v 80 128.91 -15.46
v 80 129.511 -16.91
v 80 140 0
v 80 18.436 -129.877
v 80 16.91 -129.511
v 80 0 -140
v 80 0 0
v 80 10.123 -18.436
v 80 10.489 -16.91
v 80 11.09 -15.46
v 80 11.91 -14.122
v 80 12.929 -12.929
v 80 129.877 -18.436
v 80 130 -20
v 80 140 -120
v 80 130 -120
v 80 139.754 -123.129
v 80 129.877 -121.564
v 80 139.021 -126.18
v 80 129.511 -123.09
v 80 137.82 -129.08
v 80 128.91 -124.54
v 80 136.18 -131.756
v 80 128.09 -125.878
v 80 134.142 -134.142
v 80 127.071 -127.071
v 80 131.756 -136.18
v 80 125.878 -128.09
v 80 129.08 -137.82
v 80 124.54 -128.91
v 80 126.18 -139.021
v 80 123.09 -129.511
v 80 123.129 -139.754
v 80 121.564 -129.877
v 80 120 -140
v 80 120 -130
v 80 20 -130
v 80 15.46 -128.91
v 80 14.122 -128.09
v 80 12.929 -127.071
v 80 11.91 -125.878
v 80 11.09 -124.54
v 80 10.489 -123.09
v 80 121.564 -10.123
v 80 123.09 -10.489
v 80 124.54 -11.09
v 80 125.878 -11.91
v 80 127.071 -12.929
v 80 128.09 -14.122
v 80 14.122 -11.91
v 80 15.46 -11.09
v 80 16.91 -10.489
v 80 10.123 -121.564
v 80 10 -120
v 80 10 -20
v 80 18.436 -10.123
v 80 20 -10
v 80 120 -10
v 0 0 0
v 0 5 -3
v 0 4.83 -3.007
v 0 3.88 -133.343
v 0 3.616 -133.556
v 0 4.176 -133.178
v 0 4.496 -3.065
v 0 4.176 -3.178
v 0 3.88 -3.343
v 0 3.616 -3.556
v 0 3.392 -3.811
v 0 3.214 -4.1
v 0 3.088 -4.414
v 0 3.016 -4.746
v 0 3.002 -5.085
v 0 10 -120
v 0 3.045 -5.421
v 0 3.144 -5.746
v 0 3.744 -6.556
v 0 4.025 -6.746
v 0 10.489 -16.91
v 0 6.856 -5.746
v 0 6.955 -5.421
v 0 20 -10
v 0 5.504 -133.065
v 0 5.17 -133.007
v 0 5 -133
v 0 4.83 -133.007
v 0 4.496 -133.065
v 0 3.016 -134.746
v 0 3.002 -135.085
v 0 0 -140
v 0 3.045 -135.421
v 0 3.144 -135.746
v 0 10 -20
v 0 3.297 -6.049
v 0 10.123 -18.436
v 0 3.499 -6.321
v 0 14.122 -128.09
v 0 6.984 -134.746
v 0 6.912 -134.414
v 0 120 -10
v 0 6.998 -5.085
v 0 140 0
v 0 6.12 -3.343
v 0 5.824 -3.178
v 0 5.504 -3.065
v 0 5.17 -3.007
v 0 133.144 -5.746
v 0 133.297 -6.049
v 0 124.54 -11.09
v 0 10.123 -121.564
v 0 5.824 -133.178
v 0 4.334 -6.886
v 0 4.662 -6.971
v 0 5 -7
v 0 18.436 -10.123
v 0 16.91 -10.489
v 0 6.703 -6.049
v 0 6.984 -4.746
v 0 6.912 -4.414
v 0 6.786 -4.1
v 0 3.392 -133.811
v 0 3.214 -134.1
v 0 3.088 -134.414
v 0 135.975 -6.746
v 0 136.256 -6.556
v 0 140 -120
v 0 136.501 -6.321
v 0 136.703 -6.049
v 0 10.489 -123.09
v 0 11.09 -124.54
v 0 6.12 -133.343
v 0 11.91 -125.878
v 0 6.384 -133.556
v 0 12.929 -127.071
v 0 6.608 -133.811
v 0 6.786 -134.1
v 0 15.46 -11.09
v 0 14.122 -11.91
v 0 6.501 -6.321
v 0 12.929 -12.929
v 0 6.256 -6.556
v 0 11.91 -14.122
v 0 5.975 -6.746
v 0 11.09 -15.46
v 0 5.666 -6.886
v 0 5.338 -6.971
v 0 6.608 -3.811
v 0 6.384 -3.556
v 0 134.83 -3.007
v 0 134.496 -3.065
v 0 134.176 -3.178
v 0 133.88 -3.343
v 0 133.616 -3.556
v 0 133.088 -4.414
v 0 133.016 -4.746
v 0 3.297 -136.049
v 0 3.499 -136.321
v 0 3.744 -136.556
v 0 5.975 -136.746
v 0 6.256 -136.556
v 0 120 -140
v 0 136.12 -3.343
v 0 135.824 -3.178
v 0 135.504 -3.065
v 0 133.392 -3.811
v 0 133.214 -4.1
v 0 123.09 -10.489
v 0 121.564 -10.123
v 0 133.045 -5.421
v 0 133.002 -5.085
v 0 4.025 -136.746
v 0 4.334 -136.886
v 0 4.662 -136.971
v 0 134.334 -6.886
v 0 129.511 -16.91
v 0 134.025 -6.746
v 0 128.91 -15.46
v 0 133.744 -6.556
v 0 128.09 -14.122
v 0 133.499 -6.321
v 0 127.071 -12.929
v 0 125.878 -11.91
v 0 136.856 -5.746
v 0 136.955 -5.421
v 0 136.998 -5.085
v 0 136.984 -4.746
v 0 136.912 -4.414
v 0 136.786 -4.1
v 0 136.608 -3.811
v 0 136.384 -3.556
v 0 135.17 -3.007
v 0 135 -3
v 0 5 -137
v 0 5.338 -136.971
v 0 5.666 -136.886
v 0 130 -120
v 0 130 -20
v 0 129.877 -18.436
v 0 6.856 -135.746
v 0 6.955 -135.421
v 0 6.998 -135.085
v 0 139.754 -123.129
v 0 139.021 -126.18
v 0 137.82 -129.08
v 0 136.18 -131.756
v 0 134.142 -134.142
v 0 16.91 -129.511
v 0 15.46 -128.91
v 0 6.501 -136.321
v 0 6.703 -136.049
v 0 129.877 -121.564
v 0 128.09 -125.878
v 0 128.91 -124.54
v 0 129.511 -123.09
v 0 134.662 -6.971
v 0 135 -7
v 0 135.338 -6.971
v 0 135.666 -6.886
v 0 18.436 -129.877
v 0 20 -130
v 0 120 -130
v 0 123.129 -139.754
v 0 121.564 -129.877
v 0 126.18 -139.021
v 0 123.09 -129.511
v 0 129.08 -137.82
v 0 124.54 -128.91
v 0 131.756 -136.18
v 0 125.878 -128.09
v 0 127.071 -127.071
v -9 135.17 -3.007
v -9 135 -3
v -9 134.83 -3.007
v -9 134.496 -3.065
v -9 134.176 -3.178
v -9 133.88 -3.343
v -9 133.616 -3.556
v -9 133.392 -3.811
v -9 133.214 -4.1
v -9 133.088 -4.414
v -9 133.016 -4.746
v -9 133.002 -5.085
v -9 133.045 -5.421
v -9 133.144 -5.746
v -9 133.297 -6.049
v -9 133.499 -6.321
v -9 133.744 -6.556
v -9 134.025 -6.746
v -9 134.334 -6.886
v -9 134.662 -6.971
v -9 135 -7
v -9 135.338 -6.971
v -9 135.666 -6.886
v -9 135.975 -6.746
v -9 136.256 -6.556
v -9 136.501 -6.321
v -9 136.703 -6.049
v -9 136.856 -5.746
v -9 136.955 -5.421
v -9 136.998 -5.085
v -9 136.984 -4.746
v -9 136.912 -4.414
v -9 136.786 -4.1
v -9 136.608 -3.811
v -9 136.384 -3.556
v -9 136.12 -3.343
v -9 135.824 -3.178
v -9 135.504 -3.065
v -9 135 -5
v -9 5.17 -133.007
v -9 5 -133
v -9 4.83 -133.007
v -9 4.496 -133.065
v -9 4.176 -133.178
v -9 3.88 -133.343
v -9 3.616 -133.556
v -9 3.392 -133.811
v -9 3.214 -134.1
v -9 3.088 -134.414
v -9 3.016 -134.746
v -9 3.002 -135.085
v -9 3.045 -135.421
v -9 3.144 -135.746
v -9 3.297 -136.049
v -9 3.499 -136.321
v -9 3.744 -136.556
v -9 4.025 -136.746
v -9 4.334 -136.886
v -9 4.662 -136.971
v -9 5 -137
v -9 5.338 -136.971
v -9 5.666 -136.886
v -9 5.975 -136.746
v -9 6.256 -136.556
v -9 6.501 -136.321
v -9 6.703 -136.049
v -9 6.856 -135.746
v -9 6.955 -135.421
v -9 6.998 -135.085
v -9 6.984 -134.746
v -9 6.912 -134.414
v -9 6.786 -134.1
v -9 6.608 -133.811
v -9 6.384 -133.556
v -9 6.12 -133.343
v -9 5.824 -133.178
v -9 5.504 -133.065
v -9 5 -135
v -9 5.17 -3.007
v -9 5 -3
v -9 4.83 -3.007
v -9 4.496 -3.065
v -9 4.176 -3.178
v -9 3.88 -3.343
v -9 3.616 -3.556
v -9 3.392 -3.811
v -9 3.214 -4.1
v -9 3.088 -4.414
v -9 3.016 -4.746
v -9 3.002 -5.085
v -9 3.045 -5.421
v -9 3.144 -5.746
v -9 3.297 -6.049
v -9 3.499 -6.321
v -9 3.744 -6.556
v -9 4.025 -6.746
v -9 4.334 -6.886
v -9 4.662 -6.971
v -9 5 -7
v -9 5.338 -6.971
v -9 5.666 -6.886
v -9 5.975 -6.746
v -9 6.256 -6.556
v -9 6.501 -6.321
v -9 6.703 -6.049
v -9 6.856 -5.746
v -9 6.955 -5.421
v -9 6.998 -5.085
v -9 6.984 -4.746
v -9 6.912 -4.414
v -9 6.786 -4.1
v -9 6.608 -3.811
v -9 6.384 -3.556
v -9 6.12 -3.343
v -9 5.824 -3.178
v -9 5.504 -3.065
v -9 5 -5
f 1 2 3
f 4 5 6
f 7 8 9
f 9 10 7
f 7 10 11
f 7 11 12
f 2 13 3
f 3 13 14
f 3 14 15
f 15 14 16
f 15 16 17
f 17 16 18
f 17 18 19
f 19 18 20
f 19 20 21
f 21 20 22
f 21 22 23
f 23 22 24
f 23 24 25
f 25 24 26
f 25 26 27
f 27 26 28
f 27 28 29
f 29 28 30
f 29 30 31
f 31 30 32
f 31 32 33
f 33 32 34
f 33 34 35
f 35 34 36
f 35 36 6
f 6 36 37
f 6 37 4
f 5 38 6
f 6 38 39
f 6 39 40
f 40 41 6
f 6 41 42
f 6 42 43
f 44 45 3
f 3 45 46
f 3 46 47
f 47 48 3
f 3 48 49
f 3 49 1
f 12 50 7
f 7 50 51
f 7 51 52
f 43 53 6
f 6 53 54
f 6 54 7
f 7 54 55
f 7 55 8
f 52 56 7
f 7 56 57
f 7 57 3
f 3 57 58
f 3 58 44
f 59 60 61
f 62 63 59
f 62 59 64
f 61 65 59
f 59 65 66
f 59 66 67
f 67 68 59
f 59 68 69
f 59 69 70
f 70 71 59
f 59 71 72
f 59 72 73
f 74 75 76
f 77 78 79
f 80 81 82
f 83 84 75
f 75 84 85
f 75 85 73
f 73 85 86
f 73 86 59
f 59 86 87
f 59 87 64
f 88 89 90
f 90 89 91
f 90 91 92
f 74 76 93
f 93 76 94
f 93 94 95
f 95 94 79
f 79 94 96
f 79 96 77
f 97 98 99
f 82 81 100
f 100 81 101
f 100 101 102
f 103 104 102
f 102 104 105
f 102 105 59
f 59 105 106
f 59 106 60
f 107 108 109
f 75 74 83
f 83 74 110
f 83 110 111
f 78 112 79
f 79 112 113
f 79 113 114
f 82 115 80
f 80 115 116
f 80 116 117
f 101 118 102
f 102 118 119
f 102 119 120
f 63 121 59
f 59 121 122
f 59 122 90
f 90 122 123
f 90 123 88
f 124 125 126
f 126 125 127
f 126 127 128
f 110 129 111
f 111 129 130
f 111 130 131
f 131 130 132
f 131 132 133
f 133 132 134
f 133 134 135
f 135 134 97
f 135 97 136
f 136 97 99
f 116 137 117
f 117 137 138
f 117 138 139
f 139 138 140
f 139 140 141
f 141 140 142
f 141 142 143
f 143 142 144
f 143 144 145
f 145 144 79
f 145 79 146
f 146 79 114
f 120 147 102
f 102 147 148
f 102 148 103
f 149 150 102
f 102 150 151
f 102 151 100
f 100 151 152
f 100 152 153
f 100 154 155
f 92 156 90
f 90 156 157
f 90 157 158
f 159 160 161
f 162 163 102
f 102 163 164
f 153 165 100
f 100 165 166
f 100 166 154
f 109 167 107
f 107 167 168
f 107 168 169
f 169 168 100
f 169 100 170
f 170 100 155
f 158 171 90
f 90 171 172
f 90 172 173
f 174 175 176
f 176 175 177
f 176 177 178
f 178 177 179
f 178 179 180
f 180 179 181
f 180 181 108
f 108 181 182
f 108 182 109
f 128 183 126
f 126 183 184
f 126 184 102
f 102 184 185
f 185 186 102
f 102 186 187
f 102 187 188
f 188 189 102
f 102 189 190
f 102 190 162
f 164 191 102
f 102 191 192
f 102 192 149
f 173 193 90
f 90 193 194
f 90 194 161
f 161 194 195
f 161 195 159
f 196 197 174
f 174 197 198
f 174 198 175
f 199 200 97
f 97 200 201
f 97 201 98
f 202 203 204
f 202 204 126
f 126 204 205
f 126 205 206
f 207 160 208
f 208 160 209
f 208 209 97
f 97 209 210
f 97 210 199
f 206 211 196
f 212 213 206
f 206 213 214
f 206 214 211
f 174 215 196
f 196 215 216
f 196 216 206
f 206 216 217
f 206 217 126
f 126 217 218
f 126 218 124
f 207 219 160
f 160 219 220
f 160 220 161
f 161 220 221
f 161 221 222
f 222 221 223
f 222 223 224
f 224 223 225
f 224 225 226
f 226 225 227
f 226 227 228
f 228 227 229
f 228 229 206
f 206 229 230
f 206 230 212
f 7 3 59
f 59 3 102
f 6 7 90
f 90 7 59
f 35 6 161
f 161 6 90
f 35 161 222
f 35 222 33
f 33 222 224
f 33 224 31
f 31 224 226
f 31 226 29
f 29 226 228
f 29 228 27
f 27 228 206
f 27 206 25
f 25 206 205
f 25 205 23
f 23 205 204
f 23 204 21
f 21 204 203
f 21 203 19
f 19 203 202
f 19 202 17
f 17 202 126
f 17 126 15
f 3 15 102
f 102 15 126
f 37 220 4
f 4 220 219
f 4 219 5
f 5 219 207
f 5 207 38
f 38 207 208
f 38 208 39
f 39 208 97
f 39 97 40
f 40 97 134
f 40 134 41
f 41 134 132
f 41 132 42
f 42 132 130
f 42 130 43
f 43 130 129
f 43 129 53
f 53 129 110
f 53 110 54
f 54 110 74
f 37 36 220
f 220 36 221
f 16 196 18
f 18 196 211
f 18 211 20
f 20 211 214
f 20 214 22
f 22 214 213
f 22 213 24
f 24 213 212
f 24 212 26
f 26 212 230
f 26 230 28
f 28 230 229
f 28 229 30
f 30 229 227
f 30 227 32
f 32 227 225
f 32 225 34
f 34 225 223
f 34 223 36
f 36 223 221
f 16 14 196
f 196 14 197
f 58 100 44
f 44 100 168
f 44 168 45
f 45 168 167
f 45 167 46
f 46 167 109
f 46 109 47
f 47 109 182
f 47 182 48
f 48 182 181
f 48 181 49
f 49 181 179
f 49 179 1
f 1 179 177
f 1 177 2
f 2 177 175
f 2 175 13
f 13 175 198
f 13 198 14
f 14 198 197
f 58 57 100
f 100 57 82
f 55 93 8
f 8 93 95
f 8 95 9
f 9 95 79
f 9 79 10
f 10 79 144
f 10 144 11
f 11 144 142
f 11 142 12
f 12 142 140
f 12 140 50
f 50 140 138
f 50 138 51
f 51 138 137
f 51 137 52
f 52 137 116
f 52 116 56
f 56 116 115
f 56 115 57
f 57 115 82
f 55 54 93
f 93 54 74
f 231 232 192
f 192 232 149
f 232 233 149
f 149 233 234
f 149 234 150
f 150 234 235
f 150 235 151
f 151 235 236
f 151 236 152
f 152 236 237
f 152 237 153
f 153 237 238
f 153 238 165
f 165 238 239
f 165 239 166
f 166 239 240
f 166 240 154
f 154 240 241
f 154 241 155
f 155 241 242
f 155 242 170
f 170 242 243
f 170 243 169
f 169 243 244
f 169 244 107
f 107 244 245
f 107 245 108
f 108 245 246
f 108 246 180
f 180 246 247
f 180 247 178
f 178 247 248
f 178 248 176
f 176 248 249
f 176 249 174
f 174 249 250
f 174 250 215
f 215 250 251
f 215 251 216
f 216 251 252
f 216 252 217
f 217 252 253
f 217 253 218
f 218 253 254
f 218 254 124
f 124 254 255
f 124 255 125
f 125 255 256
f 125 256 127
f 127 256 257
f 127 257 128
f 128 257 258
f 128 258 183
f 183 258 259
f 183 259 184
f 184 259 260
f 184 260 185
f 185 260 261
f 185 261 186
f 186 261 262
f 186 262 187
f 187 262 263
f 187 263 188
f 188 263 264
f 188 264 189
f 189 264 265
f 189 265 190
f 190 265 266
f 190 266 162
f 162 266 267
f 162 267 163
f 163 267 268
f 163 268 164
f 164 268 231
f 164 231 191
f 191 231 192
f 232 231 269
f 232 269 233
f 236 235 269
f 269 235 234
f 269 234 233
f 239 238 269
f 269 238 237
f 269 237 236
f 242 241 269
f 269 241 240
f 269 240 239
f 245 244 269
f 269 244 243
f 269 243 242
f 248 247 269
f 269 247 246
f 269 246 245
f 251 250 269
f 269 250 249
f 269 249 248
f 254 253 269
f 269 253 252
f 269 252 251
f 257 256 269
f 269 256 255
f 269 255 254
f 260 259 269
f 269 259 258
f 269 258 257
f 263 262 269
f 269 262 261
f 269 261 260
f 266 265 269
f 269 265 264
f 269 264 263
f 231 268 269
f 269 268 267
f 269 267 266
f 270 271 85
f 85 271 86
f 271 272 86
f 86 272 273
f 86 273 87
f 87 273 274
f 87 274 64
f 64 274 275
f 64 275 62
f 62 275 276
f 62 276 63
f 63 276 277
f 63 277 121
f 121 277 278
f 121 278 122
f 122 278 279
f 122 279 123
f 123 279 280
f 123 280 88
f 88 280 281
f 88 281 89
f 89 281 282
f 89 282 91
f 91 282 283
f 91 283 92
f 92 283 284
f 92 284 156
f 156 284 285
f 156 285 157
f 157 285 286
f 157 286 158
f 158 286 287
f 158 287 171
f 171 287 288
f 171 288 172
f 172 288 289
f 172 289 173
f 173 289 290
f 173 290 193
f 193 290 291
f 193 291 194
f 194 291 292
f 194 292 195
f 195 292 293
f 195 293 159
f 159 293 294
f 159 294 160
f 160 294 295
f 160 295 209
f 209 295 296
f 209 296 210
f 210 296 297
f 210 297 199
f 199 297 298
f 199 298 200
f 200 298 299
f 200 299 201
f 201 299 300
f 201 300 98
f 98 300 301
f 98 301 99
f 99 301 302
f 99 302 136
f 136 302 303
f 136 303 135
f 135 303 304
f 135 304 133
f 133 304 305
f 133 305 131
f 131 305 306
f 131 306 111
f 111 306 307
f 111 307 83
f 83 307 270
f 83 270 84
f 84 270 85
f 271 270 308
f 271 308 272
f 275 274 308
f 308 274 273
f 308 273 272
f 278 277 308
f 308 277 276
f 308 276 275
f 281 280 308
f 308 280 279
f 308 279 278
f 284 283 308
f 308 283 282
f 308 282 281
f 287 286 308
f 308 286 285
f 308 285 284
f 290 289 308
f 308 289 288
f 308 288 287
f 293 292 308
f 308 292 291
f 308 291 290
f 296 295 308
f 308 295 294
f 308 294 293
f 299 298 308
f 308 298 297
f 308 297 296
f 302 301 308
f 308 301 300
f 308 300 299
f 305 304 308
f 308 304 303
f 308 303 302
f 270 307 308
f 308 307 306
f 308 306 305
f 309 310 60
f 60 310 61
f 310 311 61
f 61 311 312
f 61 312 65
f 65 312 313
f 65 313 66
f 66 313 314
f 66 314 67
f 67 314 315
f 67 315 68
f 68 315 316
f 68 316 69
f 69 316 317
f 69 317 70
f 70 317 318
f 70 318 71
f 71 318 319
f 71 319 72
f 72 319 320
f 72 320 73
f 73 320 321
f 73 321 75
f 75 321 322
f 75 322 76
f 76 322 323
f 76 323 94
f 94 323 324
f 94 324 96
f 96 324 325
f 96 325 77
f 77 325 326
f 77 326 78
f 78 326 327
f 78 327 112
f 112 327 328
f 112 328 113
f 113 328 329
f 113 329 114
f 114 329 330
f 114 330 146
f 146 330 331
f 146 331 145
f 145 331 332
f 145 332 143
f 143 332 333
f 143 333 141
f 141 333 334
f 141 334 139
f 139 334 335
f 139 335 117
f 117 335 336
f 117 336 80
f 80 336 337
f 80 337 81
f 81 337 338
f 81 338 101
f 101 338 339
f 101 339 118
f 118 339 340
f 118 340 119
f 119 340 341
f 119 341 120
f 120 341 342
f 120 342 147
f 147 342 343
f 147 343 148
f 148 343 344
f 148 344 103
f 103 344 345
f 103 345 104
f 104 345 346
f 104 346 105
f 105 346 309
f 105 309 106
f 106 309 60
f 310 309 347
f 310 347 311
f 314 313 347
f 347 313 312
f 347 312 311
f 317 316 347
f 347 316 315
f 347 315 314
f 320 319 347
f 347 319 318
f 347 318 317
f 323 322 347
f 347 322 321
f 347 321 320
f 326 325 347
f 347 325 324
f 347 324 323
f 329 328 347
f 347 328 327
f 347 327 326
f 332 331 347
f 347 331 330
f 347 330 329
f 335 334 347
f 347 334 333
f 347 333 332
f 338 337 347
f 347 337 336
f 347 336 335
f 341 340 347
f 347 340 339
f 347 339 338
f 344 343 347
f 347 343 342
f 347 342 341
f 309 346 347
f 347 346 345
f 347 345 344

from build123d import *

# Parameters (mm, degrees)
EXTRUDE_1_DEPTH = 80
SKETCH_2_R      = 2
EXTRUDE_2_DEPTH = 9


with BuildPart() as part:
    # 草图1 → 凸台-拉伸1 (new body)
    with BuildSketch(Plane(origin=(0, 0, 0), x_dir=(0, 0, -1), z_dir=(1, 0, 0))):
        with BuildLine():
            Line((0, 0), (140, 0))
            Line((140, 0), (140, 120))
            ThreePointArc((140, 120), (134.142135624, 134.142135624), (120, 140))
            Line((120, 140), (0, 140))
            Line((0, 140), (0, 0))
        make_face()
        with BuildLine():
            Line((20, 130), (120, 130))
            ThreePointArc((120, 130), (127.071067812, 127.071067812), (130, 120))
            Line((130, 120), (130, 20))
            ThreePointArc((130, 20), (127.071067812, 12.928932188), (120, 10))
            Line((120, 10), (20, 10))
            ThreePointArc((20, 10), (12.928932188, 12.928932188), (10, 20))
            Line((10, 20), (10, 120))
            ThreePointArc((10, 120), (12.928932188, 127.071067812), (20, 130))
        make_face(mode=Mode.SUBTRACT)
    extrude(amount=EXTRUDE_1_DEPTH)

    # 草图2 → 凸台-拉伸2 (add)
    with BuildSketch(Plane.ZY):
        with Locations((-5, 135)):
            Circle(SKETCH_2_R)
        with Locations((-135, 5)):
            Circle(SKETCH_2_R)
        with Locations((-5, 5)):
            Circle(SKETCH_2_R)
    extrude(amount=EXTRUDE_2_DEPTH)


solid = part.part
